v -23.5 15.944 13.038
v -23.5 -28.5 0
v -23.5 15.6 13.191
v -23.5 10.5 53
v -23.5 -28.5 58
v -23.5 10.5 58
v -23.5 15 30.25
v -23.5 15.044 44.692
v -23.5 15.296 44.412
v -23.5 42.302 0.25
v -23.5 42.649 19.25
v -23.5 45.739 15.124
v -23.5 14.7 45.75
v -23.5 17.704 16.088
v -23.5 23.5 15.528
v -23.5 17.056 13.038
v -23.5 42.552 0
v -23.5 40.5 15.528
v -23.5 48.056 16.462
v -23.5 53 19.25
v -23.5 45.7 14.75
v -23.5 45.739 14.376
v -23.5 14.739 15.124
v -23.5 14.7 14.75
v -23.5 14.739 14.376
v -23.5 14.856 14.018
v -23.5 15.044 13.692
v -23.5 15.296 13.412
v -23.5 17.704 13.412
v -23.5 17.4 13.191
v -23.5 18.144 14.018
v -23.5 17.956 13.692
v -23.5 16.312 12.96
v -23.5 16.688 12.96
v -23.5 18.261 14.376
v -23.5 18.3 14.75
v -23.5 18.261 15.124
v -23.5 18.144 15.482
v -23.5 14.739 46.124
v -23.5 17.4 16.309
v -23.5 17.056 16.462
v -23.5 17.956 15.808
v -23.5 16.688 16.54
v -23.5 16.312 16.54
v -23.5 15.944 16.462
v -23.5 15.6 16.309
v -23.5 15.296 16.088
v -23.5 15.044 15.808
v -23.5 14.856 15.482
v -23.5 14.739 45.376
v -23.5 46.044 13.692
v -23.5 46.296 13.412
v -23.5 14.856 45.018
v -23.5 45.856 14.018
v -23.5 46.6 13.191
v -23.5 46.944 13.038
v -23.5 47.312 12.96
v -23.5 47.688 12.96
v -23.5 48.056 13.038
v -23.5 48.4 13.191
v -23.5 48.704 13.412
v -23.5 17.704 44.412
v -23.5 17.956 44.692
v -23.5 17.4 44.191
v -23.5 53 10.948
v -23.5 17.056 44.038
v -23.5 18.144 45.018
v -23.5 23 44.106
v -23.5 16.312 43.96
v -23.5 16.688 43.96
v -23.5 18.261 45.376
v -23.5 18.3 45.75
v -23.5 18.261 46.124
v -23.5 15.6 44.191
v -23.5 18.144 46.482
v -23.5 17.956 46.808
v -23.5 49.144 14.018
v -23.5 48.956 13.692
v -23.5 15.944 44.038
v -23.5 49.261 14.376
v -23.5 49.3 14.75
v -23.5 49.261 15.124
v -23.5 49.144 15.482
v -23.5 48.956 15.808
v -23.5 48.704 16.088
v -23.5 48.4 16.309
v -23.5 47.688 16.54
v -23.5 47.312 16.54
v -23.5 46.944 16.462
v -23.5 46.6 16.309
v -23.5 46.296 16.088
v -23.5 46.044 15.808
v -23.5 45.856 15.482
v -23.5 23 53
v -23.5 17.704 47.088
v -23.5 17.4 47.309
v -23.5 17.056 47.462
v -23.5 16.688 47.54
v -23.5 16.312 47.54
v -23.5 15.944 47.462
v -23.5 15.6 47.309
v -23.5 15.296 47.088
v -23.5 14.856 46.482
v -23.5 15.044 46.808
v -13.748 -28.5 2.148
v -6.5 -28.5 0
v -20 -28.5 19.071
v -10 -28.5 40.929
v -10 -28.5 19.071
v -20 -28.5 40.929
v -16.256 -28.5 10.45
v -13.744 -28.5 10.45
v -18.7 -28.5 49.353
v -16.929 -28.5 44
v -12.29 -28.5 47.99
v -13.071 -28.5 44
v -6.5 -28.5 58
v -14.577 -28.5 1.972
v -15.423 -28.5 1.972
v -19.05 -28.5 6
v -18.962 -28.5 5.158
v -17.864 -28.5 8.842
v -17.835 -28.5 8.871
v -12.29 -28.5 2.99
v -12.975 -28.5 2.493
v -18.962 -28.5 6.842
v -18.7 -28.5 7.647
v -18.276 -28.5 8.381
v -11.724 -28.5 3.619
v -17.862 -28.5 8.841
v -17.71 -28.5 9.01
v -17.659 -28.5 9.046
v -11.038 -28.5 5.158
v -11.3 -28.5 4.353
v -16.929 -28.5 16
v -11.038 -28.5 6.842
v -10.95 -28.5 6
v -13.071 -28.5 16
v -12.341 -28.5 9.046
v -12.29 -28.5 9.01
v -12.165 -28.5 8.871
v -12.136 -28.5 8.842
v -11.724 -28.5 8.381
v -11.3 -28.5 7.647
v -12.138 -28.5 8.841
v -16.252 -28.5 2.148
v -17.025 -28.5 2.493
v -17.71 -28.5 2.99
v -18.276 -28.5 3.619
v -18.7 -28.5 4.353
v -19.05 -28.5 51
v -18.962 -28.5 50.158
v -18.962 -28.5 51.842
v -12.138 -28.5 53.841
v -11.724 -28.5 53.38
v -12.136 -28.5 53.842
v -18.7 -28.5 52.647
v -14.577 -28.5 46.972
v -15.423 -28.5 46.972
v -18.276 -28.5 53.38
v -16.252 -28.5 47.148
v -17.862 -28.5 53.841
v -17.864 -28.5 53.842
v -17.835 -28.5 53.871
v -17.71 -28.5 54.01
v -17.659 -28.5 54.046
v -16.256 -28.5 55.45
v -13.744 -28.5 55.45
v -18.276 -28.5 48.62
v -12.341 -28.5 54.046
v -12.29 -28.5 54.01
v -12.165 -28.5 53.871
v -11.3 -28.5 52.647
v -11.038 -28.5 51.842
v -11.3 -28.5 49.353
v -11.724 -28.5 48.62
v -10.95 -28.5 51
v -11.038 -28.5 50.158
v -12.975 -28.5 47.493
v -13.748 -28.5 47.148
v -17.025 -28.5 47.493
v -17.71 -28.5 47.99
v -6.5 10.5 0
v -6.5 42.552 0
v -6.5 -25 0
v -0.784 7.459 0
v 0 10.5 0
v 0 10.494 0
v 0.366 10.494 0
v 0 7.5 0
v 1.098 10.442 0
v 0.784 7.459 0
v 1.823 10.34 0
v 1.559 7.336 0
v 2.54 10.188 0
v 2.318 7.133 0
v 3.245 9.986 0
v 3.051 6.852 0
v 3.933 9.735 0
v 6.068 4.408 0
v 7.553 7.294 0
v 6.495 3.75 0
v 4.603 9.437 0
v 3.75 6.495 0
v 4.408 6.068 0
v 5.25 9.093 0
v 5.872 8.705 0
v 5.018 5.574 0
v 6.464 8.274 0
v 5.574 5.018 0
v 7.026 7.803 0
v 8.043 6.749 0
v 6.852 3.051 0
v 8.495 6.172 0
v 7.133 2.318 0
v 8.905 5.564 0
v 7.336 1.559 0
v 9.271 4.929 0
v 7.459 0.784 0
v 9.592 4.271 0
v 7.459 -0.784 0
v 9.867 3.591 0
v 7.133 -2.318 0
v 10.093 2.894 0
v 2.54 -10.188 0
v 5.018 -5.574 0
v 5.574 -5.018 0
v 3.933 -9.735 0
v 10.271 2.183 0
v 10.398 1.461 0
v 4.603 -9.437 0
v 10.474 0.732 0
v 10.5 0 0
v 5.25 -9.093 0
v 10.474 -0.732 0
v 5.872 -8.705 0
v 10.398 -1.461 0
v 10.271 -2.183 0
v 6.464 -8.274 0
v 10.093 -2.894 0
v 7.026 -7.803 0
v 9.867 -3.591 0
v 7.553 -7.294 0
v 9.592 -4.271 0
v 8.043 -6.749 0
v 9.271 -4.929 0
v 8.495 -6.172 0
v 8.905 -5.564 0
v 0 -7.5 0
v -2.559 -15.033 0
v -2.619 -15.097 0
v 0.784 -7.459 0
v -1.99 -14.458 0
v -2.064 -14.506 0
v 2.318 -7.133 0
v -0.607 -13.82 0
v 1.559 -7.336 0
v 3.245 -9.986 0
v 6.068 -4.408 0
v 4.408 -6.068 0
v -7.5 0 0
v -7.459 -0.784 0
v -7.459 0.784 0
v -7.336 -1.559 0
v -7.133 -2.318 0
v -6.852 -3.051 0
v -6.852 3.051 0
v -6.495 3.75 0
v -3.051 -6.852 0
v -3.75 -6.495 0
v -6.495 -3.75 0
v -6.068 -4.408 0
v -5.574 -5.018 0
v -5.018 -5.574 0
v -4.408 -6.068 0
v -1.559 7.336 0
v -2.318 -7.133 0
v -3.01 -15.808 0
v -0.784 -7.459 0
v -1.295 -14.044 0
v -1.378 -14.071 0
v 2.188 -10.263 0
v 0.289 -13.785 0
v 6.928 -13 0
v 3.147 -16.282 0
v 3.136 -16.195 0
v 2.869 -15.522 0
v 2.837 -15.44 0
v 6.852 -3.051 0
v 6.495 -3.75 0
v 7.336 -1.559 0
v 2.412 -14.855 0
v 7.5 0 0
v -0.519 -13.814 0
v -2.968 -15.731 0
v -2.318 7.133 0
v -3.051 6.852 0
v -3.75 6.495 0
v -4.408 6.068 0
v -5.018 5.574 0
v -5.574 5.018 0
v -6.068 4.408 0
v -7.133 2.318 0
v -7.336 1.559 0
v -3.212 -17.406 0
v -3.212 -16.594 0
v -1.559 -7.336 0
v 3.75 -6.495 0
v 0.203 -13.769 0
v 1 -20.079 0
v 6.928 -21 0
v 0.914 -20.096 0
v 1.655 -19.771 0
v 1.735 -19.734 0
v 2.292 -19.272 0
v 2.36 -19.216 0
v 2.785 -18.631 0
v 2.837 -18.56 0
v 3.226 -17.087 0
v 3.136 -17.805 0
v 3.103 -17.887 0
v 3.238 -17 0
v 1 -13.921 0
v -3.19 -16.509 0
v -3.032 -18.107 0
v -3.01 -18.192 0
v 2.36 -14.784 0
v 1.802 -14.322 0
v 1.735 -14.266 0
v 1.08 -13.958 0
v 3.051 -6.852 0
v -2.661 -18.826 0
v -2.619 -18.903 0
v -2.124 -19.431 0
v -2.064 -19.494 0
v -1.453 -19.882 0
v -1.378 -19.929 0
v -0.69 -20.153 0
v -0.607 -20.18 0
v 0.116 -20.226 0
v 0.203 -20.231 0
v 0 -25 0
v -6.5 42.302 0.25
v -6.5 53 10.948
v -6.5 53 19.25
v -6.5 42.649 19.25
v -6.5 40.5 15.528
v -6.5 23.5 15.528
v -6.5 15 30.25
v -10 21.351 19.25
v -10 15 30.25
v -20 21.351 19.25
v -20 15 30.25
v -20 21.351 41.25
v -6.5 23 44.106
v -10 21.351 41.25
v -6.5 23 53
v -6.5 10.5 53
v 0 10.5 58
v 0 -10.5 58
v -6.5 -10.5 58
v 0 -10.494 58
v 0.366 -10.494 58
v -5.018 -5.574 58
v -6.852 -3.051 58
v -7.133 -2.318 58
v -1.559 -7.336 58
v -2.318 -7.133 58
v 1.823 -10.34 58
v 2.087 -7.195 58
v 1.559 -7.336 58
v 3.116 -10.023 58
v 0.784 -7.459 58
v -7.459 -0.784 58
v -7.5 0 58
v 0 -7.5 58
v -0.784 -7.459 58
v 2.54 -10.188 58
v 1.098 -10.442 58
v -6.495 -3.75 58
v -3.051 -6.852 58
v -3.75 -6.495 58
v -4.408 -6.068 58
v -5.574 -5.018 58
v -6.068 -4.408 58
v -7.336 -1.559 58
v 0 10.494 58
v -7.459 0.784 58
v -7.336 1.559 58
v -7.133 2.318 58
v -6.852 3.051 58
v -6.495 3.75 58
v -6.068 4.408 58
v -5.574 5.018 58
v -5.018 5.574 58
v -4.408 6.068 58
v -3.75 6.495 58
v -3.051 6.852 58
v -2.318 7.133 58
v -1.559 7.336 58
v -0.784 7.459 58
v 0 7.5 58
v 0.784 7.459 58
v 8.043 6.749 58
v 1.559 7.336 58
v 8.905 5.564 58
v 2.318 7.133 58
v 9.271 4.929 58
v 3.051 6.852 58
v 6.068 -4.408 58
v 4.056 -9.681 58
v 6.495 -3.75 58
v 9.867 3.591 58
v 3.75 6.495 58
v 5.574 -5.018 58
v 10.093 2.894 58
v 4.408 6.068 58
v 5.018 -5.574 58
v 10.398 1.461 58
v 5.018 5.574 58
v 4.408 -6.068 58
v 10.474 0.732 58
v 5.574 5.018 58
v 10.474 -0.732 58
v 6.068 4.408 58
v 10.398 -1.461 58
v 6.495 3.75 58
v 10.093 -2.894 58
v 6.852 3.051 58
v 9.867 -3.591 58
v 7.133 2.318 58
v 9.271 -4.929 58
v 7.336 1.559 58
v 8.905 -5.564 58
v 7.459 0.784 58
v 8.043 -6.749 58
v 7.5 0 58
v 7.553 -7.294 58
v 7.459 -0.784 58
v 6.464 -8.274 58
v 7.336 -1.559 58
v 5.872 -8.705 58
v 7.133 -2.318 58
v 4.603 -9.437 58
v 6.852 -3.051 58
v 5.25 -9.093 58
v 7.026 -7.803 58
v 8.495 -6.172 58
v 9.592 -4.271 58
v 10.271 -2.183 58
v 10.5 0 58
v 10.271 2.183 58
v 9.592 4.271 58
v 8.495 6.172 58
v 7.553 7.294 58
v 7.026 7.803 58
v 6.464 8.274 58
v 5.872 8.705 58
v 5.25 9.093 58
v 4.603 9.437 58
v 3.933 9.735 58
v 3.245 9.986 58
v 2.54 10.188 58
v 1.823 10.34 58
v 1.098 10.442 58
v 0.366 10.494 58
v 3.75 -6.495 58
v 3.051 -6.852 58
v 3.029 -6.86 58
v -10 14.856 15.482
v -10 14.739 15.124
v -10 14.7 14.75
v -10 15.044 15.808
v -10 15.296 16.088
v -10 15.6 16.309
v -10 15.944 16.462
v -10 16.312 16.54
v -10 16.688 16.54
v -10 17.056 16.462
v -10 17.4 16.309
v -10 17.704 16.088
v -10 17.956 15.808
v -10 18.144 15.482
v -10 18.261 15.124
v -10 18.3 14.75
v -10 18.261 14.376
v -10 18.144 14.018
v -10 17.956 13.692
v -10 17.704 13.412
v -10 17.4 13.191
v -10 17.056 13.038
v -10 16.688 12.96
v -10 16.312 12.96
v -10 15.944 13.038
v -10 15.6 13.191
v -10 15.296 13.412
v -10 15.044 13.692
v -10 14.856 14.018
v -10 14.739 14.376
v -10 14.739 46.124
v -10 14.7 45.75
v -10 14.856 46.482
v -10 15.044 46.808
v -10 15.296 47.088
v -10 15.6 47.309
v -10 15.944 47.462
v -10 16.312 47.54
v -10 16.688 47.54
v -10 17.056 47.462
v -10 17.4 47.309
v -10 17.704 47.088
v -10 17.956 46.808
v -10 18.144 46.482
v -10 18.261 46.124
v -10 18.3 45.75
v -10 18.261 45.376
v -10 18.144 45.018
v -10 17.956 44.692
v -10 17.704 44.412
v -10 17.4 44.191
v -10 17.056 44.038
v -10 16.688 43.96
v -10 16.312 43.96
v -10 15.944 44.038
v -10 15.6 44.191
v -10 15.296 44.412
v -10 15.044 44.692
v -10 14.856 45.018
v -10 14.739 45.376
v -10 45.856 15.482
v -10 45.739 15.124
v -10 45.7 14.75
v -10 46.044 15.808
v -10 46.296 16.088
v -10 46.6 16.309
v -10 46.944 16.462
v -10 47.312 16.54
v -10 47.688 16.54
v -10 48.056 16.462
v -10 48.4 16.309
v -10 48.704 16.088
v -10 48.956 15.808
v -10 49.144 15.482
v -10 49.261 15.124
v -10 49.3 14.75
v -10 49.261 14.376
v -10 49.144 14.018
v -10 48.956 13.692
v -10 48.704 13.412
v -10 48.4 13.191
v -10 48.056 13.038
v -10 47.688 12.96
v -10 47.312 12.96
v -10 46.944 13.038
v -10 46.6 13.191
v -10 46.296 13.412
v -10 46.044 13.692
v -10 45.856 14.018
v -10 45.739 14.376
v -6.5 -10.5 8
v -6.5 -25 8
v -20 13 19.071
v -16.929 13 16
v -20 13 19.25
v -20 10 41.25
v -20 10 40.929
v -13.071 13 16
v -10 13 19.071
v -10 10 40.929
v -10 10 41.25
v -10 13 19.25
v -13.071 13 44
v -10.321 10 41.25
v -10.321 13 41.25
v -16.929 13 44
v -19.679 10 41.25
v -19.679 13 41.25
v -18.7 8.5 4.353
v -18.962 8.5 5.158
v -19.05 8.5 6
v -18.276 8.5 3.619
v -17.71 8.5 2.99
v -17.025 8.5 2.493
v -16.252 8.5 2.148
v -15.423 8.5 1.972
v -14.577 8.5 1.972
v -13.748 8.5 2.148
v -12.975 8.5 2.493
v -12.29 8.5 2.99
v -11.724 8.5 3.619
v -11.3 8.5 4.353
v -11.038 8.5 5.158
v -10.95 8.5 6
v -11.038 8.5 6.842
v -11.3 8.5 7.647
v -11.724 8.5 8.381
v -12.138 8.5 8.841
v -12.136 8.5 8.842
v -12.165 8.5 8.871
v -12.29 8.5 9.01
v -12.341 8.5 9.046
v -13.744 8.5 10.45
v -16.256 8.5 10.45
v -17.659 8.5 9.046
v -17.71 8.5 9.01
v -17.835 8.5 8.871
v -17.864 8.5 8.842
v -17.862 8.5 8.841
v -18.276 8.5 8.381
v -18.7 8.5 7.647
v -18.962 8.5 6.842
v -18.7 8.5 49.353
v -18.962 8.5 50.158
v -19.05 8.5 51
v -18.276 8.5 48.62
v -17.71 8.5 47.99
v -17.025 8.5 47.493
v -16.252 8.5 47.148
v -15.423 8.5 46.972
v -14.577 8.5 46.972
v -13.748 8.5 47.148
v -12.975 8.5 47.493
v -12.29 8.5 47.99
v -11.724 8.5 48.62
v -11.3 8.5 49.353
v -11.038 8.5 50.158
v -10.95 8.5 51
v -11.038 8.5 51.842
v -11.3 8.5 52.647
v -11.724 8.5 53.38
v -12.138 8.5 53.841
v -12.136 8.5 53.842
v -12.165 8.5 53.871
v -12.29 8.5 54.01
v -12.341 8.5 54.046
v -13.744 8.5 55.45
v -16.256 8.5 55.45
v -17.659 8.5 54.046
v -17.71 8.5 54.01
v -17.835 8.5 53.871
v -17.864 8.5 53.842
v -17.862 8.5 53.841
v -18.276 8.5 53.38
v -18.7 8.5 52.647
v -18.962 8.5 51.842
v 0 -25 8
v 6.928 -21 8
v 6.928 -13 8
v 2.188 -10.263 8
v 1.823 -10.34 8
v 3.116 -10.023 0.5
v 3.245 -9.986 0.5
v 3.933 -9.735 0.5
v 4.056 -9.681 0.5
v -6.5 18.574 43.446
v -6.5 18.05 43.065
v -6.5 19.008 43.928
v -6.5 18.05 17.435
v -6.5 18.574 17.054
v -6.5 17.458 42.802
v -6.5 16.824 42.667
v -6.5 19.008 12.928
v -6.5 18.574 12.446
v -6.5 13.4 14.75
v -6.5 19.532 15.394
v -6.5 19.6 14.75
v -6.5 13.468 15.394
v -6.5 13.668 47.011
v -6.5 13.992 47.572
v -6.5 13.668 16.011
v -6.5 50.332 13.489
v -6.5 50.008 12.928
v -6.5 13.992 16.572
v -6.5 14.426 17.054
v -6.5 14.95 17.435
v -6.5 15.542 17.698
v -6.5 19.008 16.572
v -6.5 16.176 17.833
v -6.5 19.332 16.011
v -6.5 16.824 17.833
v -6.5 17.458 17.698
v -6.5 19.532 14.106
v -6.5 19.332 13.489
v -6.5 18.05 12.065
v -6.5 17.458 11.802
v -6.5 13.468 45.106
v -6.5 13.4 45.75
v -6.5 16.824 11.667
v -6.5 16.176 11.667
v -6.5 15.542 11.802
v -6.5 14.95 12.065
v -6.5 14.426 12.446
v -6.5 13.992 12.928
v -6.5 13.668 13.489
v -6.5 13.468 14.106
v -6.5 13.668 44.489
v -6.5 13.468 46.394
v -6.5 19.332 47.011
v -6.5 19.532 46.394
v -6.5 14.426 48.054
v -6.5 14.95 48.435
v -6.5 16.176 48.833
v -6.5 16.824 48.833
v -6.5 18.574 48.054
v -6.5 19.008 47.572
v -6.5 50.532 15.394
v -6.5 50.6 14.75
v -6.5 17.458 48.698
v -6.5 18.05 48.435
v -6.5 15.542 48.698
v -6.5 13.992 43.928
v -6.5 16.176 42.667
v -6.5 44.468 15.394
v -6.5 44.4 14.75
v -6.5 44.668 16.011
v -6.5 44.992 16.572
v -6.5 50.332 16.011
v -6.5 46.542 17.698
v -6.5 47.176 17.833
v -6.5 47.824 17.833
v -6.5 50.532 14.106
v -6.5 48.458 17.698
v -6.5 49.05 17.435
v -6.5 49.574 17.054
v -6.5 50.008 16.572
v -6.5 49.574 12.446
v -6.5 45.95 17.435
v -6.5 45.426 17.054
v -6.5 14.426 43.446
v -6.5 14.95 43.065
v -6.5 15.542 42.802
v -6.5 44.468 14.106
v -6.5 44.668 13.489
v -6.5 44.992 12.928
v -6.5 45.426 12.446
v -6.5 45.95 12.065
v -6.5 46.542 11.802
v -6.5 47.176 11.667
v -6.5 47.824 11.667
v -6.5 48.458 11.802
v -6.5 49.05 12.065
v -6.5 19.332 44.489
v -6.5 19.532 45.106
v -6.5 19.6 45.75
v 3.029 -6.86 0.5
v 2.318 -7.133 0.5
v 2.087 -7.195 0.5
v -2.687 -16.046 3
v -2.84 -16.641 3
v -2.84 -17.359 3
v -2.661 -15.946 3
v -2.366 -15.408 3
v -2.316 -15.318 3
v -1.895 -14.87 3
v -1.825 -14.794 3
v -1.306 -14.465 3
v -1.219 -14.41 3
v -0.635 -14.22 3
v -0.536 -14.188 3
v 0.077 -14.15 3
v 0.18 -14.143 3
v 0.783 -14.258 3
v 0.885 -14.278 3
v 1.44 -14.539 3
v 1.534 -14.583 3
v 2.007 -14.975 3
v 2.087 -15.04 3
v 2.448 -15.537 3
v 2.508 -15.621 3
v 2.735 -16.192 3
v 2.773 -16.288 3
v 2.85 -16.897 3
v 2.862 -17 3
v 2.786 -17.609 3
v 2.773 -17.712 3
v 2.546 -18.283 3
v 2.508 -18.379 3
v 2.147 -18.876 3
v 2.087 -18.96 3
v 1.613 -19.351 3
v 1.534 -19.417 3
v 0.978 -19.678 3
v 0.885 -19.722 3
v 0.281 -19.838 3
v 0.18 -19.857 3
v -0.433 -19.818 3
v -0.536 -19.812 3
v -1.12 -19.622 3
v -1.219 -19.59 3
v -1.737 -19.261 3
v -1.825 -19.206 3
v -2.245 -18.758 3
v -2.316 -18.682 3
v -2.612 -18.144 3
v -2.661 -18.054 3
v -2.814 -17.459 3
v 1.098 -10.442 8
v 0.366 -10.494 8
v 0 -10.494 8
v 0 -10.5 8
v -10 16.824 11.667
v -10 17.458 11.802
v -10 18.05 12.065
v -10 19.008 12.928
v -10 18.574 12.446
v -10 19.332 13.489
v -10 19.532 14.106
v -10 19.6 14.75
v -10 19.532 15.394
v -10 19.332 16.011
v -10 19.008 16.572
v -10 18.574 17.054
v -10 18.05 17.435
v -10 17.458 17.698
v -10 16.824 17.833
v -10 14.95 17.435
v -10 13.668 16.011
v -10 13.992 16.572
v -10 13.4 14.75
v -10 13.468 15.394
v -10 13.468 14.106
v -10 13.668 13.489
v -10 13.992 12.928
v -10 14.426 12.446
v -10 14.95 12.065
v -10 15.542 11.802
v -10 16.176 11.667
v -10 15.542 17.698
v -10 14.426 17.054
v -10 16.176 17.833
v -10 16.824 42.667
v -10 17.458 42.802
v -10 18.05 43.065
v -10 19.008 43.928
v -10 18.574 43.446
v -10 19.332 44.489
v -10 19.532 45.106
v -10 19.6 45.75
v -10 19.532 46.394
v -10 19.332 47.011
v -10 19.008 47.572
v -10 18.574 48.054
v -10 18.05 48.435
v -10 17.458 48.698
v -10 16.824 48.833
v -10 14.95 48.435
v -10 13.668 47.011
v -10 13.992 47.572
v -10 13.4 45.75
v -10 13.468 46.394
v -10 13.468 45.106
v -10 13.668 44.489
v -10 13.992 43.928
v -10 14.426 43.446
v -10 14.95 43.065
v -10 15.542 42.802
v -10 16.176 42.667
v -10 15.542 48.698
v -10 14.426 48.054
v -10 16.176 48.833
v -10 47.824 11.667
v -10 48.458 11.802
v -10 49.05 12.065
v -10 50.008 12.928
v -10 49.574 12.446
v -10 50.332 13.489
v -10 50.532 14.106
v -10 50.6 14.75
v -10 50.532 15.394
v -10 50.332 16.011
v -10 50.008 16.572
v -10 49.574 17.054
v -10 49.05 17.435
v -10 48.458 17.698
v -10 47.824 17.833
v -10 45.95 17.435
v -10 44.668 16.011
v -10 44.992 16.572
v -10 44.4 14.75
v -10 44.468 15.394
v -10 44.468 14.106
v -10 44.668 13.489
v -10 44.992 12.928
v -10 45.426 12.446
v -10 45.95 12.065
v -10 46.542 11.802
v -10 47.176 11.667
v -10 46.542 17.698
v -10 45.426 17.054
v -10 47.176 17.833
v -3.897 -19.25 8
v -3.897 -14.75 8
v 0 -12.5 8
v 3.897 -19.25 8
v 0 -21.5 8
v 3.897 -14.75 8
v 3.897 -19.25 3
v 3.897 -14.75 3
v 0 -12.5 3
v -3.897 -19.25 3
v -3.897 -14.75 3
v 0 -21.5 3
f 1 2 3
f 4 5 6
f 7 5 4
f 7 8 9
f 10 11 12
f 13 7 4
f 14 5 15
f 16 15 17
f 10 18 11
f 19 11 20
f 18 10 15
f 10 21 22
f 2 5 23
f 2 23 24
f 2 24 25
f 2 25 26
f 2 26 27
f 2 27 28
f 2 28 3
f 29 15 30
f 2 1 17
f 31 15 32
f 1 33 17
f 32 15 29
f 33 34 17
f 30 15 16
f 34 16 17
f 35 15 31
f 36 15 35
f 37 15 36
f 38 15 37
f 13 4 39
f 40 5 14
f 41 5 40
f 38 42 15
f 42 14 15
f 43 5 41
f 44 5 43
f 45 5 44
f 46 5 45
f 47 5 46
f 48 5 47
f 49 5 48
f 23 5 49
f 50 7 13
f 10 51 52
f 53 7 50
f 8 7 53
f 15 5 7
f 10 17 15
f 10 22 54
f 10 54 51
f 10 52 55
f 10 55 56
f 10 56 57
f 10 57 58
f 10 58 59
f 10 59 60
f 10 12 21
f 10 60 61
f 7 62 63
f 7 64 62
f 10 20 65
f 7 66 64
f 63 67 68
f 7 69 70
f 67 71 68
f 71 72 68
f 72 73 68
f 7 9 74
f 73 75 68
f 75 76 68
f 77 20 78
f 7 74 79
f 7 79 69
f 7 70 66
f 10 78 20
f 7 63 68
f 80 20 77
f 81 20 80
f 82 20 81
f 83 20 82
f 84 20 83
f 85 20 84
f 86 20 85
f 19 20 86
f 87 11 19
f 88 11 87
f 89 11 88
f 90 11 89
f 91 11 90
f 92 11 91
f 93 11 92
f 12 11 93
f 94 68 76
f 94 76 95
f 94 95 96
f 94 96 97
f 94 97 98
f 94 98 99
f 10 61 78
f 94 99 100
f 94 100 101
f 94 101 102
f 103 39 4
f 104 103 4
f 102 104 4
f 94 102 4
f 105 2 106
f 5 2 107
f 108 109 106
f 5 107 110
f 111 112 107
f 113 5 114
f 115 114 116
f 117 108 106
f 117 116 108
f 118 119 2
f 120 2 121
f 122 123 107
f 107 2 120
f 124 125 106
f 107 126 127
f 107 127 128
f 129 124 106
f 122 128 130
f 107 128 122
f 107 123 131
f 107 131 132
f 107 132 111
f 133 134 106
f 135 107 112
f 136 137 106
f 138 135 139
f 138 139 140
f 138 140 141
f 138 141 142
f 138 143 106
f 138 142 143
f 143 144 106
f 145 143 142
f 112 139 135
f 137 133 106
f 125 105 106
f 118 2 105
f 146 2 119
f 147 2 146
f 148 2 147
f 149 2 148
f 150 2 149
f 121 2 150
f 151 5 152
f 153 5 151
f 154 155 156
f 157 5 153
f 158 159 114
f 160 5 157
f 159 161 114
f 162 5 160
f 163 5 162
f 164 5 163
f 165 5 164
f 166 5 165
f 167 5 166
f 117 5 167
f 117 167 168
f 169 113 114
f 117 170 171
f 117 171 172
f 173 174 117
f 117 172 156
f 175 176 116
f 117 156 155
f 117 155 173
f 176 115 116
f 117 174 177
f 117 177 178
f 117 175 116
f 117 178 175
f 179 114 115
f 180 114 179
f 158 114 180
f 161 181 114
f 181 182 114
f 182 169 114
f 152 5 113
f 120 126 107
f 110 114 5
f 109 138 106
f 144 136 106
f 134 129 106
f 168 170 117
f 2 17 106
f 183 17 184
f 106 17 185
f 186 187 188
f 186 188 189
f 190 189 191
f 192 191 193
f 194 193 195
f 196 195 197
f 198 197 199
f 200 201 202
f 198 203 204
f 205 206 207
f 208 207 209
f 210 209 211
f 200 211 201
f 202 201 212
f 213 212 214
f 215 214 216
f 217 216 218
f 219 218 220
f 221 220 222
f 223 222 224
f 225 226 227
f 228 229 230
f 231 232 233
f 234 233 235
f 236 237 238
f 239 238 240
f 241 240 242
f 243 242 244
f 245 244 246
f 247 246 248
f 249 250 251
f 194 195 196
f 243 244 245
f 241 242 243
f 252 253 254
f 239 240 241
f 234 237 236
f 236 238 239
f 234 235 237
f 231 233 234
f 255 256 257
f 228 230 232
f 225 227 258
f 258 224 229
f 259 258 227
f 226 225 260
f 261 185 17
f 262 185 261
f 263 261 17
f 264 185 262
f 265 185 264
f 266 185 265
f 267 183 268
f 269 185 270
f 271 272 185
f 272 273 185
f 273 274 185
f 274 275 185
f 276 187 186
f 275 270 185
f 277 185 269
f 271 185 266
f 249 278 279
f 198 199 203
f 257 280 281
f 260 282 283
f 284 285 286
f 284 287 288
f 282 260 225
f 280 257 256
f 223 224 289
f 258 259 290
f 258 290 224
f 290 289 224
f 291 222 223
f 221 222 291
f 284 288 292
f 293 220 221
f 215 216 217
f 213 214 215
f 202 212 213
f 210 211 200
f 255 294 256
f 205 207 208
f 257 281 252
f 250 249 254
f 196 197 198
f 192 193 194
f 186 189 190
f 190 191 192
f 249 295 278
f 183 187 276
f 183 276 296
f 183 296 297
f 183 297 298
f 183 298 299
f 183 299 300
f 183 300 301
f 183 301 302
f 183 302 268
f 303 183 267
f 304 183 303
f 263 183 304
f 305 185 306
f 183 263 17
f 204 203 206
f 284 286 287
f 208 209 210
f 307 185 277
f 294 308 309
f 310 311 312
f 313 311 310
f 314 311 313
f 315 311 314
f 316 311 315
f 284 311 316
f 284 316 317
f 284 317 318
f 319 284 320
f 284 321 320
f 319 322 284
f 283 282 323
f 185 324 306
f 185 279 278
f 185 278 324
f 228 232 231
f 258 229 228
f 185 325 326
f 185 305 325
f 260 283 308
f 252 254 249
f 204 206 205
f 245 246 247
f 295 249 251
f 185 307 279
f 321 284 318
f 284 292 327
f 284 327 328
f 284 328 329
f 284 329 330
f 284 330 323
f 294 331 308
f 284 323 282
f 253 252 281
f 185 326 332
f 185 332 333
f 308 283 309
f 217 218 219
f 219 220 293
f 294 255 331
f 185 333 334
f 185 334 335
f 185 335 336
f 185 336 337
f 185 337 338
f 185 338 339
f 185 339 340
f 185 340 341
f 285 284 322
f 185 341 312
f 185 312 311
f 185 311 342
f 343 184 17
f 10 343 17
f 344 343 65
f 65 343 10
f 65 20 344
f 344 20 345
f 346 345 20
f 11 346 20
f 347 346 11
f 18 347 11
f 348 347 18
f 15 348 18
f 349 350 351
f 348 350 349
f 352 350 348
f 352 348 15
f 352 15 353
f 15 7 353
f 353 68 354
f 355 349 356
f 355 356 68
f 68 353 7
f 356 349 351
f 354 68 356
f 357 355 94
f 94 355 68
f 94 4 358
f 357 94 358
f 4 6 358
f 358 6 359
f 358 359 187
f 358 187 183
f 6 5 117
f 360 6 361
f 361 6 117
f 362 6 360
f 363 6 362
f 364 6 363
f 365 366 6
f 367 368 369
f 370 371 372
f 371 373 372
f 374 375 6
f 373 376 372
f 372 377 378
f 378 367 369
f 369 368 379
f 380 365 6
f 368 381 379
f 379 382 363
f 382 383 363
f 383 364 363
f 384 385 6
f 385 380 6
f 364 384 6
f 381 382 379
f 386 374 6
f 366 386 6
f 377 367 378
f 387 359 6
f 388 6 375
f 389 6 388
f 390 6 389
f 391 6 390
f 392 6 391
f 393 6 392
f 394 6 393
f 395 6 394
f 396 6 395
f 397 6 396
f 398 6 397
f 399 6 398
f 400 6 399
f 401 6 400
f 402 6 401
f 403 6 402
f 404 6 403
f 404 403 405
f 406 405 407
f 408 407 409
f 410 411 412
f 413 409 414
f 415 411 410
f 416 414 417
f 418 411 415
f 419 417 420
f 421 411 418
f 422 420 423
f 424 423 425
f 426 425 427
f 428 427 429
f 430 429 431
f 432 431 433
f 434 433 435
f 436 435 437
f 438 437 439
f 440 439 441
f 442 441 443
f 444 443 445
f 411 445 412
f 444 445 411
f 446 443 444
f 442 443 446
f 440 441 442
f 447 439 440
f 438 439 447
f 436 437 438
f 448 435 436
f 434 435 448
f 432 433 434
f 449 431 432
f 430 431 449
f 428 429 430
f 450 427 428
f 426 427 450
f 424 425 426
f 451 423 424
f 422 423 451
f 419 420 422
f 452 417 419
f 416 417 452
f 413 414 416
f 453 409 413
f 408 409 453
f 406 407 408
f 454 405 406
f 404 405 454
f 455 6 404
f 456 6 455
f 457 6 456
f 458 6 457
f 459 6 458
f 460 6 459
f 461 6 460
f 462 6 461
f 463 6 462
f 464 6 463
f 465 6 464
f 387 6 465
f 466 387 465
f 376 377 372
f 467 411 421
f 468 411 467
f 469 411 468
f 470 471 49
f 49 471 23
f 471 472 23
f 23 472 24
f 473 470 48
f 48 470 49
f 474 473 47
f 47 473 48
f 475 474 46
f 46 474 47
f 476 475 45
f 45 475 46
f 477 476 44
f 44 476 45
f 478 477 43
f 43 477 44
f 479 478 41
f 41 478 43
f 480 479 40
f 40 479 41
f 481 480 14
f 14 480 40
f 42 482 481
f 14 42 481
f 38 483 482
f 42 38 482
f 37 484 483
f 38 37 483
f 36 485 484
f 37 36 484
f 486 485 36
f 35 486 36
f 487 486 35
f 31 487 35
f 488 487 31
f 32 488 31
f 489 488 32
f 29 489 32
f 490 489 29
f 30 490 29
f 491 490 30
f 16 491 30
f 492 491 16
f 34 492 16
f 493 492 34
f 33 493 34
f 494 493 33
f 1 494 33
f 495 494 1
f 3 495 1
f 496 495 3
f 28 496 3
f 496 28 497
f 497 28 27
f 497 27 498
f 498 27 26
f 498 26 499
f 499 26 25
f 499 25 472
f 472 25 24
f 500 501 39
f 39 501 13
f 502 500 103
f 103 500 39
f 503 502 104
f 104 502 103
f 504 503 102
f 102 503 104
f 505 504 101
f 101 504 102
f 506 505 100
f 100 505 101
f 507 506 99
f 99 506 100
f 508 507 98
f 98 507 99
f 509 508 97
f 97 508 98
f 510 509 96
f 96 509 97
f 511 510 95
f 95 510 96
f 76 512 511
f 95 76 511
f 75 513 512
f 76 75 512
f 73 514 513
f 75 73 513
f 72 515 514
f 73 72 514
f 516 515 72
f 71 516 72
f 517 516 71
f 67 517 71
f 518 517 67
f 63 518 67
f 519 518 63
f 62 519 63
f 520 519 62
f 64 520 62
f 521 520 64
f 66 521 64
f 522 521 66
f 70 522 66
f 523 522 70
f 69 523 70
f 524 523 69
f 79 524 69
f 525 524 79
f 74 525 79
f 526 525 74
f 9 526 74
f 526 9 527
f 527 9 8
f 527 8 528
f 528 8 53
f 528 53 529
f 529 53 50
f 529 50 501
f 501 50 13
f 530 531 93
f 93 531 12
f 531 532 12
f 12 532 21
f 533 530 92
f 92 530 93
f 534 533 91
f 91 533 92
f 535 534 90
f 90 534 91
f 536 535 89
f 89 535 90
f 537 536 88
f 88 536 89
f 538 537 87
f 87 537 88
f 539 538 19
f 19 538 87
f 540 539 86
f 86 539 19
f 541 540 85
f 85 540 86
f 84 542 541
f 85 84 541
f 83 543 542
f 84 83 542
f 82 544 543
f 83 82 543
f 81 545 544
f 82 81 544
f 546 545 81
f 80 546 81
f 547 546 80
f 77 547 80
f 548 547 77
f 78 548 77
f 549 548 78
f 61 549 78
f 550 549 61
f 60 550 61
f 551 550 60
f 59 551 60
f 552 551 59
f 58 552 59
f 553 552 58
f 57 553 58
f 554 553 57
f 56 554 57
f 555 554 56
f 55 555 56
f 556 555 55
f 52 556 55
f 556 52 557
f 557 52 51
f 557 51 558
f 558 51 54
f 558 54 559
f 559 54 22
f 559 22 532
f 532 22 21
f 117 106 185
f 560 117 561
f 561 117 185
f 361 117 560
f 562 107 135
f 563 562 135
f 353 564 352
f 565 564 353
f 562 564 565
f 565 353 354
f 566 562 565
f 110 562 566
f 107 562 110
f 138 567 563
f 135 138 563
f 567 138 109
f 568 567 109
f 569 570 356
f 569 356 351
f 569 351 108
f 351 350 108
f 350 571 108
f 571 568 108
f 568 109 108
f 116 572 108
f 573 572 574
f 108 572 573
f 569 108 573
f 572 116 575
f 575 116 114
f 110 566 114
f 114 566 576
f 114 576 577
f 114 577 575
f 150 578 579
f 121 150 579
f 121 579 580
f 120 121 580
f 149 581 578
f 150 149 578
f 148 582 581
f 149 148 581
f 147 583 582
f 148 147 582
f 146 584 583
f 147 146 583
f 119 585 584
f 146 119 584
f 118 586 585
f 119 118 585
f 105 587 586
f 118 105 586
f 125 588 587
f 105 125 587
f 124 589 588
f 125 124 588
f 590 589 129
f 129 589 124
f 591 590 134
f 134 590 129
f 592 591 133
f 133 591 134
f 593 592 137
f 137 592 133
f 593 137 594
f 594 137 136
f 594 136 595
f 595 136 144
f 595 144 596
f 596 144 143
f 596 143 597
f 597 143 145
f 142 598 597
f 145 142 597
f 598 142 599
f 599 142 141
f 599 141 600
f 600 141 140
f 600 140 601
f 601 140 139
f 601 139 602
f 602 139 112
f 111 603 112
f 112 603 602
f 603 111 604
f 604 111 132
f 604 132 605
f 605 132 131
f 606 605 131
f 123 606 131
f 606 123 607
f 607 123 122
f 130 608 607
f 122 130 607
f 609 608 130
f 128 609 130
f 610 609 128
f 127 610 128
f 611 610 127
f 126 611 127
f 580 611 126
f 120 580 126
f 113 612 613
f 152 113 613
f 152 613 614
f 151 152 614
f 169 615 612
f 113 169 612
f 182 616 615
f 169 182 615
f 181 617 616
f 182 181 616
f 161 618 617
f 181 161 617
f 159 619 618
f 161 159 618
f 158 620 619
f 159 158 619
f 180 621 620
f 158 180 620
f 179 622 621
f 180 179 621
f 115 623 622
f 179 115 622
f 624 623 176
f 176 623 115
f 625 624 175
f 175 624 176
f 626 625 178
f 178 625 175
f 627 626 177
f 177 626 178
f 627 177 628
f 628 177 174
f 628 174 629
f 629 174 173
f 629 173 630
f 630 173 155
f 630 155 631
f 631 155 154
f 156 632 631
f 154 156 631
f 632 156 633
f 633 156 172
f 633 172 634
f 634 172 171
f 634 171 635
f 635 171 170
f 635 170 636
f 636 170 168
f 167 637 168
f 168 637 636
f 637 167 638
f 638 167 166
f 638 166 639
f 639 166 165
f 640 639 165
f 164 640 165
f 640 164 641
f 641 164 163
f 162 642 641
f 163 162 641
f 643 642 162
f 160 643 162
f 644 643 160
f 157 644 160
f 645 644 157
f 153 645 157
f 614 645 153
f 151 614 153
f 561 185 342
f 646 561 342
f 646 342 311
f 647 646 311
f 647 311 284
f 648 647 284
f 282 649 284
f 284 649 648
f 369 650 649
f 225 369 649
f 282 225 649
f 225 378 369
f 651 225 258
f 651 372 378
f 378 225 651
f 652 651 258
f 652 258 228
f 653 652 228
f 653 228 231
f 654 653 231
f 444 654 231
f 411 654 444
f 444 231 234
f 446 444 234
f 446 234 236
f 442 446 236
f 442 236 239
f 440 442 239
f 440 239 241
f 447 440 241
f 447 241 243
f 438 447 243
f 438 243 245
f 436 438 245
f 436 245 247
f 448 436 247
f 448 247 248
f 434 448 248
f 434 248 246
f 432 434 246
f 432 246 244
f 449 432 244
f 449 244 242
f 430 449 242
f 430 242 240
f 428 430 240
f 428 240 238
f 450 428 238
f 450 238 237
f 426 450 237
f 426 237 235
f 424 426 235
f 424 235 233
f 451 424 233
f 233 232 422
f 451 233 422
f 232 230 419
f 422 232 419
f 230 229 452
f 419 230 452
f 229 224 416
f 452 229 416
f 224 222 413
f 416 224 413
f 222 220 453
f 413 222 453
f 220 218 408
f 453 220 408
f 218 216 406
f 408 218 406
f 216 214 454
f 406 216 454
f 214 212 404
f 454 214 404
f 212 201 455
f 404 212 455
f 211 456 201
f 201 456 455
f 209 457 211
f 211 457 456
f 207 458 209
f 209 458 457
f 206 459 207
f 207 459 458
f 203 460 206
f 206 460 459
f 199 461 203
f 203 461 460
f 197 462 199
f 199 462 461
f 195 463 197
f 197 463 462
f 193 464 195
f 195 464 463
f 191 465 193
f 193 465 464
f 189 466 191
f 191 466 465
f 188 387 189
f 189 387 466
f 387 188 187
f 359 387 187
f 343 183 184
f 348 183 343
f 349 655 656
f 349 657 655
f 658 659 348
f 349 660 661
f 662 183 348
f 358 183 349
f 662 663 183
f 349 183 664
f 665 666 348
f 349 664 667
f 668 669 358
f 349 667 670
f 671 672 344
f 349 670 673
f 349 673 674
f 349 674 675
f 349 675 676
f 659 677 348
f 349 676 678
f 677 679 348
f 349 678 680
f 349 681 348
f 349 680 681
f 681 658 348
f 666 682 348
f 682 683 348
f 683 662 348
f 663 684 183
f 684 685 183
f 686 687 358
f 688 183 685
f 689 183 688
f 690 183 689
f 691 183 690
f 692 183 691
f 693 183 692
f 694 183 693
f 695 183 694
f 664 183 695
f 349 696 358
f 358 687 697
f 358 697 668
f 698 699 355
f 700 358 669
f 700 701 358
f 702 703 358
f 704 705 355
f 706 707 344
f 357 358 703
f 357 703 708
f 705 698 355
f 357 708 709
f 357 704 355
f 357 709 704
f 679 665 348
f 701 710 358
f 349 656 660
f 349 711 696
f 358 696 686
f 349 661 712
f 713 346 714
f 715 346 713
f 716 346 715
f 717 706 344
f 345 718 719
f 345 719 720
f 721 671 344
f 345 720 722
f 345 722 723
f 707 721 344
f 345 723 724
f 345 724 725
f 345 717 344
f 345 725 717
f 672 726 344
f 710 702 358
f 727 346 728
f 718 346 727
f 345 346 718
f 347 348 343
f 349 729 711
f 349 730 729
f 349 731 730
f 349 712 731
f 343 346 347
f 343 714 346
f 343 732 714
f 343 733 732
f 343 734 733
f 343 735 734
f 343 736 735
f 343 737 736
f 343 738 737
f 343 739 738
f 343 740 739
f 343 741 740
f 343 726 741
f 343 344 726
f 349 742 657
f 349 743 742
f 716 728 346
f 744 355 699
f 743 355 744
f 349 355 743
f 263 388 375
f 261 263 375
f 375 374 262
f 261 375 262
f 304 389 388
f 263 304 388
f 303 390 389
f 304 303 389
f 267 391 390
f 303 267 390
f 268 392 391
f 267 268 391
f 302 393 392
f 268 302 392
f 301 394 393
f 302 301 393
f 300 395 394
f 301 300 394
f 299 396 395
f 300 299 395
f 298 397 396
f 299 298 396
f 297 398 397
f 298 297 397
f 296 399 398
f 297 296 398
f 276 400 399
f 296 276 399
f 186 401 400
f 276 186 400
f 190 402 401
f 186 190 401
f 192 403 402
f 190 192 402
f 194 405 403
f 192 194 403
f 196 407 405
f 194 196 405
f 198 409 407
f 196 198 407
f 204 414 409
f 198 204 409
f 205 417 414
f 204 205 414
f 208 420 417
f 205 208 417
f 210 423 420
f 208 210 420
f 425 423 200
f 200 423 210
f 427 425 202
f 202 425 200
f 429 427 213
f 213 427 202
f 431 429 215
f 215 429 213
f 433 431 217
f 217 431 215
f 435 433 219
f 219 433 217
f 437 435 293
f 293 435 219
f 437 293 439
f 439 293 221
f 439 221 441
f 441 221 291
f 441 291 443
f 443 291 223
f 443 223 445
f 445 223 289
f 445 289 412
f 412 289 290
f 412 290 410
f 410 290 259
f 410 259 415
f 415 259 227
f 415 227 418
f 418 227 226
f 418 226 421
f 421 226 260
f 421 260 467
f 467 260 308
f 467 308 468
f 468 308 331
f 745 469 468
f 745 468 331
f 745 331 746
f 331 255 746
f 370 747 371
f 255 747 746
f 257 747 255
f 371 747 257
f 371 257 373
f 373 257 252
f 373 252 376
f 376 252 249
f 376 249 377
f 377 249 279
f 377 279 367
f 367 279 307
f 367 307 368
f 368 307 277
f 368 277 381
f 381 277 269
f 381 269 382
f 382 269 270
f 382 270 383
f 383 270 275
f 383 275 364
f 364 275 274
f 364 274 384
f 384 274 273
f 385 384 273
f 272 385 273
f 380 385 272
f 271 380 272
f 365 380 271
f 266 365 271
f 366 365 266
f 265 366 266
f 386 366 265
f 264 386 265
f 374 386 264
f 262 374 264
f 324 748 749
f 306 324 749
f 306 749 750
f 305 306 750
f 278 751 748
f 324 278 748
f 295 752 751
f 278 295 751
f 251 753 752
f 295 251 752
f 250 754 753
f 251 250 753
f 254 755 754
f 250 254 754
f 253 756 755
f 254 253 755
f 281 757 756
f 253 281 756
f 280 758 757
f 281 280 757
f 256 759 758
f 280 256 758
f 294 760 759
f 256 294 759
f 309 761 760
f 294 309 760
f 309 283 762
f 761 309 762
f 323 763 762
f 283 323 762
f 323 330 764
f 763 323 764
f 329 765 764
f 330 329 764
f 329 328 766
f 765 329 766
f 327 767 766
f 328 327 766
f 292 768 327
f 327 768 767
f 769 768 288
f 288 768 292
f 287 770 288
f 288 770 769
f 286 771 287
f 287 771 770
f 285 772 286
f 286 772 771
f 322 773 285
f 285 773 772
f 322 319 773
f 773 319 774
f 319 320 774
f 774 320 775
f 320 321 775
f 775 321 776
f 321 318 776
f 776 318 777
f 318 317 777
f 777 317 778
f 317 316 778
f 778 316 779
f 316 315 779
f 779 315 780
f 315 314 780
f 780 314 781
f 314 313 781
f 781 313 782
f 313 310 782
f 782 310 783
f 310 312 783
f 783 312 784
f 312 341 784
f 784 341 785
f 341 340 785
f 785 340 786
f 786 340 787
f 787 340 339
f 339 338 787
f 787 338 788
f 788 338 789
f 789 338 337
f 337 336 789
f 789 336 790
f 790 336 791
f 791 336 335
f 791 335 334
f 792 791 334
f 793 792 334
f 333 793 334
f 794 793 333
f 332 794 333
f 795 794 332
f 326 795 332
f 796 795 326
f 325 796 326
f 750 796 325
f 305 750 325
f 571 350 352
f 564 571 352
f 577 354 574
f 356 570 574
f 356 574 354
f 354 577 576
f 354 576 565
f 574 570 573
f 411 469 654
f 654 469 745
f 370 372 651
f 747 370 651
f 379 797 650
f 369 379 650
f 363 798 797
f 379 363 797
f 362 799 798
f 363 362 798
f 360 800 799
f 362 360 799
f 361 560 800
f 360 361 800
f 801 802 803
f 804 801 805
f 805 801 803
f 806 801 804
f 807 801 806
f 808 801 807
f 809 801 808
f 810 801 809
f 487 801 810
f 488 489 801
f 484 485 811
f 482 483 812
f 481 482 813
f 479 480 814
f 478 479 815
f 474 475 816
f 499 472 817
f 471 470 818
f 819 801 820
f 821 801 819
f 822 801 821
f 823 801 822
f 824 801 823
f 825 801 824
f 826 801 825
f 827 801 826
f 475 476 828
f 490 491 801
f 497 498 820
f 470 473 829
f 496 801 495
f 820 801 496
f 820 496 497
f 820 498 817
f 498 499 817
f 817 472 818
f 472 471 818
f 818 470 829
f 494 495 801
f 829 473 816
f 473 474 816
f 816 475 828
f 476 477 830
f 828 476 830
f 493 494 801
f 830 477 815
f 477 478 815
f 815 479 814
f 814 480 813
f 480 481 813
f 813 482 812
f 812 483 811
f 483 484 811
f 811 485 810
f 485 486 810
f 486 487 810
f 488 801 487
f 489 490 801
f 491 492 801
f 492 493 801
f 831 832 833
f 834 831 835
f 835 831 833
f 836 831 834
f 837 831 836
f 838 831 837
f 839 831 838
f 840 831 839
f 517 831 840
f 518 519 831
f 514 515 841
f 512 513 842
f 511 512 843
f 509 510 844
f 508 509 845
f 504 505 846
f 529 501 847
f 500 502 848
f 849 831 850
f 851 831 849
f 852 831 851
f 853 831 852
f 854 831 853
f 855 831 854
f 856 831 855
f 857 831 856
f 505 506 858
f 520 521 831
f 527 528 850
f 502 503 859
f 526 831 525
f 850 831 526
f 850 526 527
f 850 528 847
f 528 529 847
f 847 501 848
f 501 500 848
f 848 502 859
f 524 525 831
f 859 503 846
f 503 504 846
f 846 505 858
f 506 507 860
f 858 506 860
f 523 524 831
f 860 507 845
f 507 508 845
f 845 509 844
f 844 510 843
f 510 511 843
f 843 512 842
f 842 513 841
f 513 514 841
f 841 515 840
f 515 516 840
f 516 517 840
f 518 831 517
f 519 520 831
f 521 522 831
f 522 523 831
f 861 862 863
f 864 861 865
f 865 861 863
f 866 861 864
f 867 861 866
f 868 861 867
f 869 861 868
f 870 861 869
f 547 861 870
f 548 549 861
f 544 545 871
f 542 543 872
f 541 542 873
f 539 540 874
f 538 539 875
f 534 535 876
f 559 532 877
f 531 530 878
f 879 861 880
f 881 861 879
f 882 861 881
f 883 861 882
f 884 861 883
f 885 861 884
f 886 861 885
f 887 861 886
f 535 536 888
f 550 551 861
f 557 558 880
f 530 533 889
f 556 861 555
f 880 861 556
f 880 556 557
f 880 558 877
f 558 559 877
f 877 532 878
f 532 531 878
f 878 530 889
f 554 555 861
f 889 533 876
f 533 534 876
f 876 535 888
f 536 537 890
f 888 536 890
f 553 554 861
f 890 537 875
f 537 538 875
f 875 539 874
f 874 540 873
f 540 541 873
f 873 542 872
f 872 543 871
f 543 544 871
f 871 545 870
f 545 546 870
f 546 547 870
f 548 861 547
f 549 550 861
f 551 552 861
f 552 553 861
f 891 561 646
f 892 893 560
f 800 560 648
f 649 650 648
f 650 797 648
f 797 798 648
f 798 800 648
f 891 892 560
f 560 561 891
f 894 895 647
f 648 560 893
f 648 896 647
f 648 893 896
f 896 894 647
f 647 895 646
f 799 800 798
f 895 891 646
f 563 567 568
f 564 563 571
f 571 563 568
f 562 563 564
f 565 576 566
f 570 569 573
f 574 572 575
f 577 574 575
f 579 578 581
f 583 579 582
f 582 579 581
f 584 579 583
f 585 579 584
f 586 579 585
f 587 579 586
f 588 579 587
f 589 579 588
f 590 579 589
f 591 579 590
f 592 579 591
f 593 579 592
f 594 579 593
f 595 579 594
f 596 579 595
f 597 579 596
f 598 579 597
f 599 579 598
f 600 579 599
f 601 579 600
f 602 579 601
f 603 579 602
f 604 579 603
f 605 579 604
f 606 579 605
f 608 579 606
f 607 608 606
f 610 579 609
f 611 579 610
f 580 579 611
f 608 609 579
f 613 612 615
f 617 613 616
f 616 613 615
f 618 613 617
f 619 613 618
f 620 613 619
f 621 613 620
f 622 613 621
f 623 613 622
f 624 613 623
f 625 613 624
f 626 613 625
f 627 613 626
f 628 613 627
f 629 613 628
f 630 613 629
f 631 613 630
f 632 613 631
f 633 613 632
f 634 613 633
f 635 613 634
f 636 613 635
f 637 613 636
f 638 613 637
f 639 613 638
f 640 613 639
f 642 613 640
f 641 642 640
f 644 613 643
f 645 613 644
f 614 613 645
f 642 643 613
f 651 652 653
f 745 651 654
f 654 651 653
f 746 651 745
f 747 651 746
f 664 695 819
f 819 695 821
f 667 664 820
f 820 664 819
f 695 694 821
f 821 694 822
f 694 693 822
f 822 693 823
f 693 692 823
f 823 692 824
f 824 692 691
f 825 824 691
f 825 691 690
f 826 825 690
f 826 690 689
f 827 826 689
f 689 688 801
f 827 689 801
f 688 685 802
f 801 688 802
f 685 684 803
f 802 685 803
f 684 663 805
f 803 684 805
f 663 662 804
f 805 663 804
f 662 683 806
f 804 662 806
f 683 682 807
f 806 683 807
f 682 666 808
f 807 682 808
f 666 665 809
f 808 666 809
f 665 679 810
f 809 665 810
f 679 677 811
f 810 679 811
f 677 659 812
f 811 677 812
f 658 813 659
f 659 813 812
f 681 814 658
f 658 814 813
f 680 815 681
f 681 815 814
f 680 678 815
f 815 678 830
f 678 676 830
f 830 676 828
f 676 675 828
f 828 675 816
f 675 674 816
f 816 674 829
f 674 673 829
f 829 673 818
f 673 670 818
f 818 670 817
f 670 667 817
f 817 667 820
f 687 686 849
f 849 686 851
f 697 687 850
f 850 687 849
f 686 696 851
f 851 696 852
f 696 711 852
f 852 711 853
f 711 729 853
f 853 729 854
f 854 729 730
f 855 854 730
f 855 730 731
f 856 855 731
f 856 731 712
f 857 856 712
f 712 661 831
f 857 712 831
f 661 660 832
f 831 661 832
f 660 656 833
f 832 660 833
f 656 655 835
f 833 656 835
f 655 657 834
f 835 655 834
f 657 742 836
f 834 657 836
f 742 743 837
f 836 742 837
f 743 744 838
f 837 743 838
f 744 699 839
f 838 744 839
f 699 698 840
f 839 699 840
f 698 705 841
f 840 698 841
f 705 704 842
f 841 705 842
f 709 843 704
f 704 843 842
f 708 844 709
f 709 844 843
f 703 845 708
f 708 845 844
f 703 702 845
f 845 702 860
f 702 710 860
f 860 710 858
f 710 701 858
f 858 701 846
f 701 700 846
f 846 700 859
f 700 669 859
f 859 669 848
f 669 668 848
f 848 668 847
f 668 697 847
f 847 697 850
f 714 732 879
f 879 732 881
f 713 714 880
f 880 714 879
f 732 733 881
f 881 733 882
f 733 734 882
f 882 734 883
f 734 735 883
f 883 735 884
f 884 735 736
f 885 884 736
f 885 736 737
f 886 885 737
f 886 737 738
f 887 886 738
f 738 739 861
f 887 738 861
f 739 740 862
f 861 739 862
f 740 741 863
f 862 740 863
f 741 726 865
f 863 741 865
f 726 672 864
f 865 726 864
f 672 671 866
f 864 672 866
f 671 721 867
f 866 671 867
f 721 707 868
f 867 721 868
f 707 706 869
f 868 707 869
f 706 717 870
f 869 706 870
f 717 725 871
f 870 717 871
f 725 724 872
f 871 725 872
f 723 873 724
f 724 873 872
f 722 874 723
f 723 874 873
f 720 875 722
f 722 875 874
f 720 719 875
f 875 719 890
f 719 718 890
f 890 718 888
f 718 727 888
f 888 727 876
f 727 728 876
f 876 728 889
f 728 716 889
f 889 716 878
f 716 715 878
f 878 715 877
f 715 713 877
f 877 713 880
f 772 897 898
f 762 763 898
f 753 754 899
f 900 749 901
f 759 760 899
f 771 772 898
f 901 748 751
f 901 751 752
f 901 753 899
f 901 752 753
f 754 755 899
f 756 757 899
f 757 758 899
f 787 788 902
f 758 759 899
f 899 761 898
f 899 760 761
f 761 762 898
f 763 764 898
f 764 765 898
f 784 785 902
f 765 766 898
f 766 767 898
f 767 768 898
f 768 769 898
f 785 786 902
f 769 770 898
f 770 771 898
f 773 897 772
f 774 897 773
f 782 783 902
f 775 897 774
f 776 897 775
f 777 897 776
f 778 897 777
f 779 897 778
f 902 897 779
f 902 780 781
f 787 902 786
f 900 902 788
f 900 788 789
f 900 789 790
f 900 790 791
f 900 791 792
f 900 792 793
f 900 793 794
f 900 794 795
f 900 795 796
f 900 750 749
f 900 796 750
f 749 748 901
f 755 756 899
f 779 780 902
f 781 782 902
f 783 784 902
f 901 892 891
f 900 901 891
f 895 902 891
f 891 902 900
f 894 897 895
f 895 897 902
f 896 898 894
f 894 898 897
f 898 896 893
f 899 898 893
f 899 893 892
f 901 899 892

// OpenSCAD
// file: inc/bearing.scad
// PRUSA iteration3
// Bearing holders
// GNU GPL v3
// Josef Průša <iam@josefprusa.cz> and contributors
// http://www.reprap.org/wiki/Prusa_Mendel
// http://prusamendel.org

bearing_diameter = 15;

module horizontal_bearing_base(bearings=1){
 translate(v=[0,0,6]) cube(size = [24,8+bearings*25,12], center = true);	
}
module horizontal_bearing_holes(bearings=1){
 cutter_lenght = 10+bearings*25;
 one_holder_lenght = 8+25;
 holder_lenght = 8+bearings*25;
 
 // Main bearing cut
 difference(){
  translate(v=[0,0,12+1.5]) rotate(a=[90,0,0]) translate(v=[0,0,-cutter_lenght/2]) cylinder(h = cutter_lenght, r=bearing_diameter/2, $fn=50);
  // Bearing retainers
  translate(v=[0,1-holder_lenght/2,3+1.5]) cube(size = [24,6,8], center = true);
  translate(v=[0,-1+holder_lenght/2,3+1.5]) cube(size = [24,6,8], center = true);
 }
 
 // Ziptie cutouts
 ziptie_cut_ofset = 0;
 for ( i = [0 : bearings-1] ){
  // For easier positioning I move them by half of one 
  // bearing holder then add each bearign lenght and then center again
  translate(v=[0,-holder_lenght/2,0]) translate(v=[0,one_holder_lenght/2+i*25,0]) difference(){
   union(){
    translate(v=[0,2-6,12]) rotate(a=[90,0,0]) translate(v=[0,0,0]) cylinder(h = 4, r=12.5, $fn=50);
    translate(v=[0,2+6,12]) rotate(a=[90,0,0]) translate(v=[0,0,0]) cylinder(h = 4, r=12.5, $fn=50);
   }
   translate(v=[0,10,12]) rotate(a=[90,0,0]) translate(v=[0,0,0]) cylinder(h = 24, r=10, $fn=50);
  }
 }
 
}

module horizontal_bearing_test(){
 difference(){
  horizontal_bearing_base(1);
  horizontal_bearing_holes(1);
 }
 translate(v=[30,0,0]) difference(){
  horizontal_bearing_base(2);
  horizontal_bearing_holes(2);
 }
 translate(v=[60,0,0]) difference(){
  horizontal_bearing_base(3);
  horizontal_bearing_holes(3);
 }
}



thinwall = 3;
bearing_size = bearing_diameter + 2 * thinwall;

module vertical_bearing_base(){
 translate(v=[-2-bearing_size/4,0,29]) cube(size = [4+bearing_size/2,bearing_size,58], center = true);
 cylinder(h = 58, r=bearing_size/2, $fn = 90);
}

module vertical_bearing_holes(){
  translate(v=[0,0,-1]) cylinder(h = 62, r=bearing_diameter/2, $fn = 60);
  rotate(a=[0,0,-70]) translate(v=[8,0,31.5]) cube(size = [5,1,62], center = true);
}

difference(){
vertical_bearing_base();
vertical_bearing_holes();
}
// file: inc/x-end.scad
// PRUSA iteration3
// X end prototype
// GNU GPL v3
// Josef Průša <iam@josefprusa.cz> and contributors
// http://www.reprap.org/wiki/Prusa_Mendel
// http://prusamendel.org

use <bearing.scad>
rod_distance = 45;

module x_end_base(){
// Main block
height = 58;
translate(v=[-15,-9,height/2]) cube(size = [17,39,height], center = true);
// Bearing holder
 vertical_bearing_base();	
//Nut trap
 // Cube
 translate(v=[-2-2,-17,4]) cube(size = [8,16,8], center = true);
 // Hexagon
 translate(v=[0,-17,0]) rotate([0,0,30]) cylinder(h = 8, r=8, $fn = 6);
}

module x_end_holes(){
 vertical_bearing_holes();
// Belt hole
translate(v=[-1,0,0]){
difference(){
	translate(v=[-5.5-10+1.5,-10,30]) cube(size = [10,46,28], center = true);
	// Nice edges
	translate(v=[-5.5-10+1.5,-10,30+23]) rotate([0,45,0]) cube(size = [10,46,28], center = true);
	translate(v=[-5.5-10+1.5,-10,30+23]) rotate([0,-45,0]) cube(size = [10,46,28], center = true);
	translate(v=[-5.5-10+1.5,-10,30-23]) rotate([0,45,0]) cube(size = [10,46,28], center = true);
	translate(v=[-5.5-10+1.5,-10,30-23]) rotate([0,-45,0]) cube(size = [10,46,28], center = true);

}
}

// Bottom pushfit rod
translate(v=[-15,-41.5,6]) rotate(a=[-90,0,0]) pushfit_rod(8.1,50);
// Top pushfit rod
translate(v=[-15,-41.5,rod_distance+6]) rotate(a=[-90,0,0]) pushfit_rod(8.1,50);
// Nut trap
 translate(v=[0,-17,-0.5]) cylinder(h = 4, r1=3.3, r2=2.8, $fn=25);
 translate(v=[0,-17,3]) rotate([0,0,30]) cylinder(h = 10, r=4.5, $fn = 6);
}


// Final prototype
module x_end_plain(){
 difference(){
  x_end_base();
  x_end_holes();
 }
}

x_end_plain();


module pushfit_rod(diameter,length){
 cylinder(h = length, r=diameter/2, $fn=30);
 difference(){
 	translate(v=[0,-diameter/2.85,length/2]) rotate([0,0,45]) cube(size = [diameter/2,diameter/2,length], center = true);
 	translate(v=[0,-diameter/4-diameter/2-0.4,length/2]) rotate([0,0,0]) cube(size = [diameter,diameter/2,length], center = true);
 }
 //translate(v=[0,-diameter/2-2,length/2]) cube(size = [diameter,1,length], center = true);
}
// main file
// PRUSA iteration3
// x end motor
// GNU GPL v3
// Josef Průša <iam@josefprusa.cz> and contributors
// http://www.reprap.org/wiki/Prusa_Mendel
// http://prusamendel.org

use <inc/x-end.scad>

module x_end_motor_base(){
 x_end_base();
 translate(v=[-15,31,26.5]) cube(size = [17,44,53], center = true);
}

module x_end_motor_holes(){
 x_end_holes();
 // Position to place
 translate(v=[-1,32,30.25]){
  // Belt hole
  translate(v=[-14,1,0]) cube(size = [10,46,22], center = true);
  // Motor mounting holes
  translate(v=[20,-15.5,-15.5]) rotate(a=[0,-90,0]) rotate(a=[0,0,90]) cylinder(h = 70, r=1.8, $fn=30);
  translate(v=[1,-15.5,-15.5]) rotate(a=[0,-90,0]) rotate(a=[0,0,90]) cylinder(h = 10, r=3.1, $fn=30);
 

  translate(v=[20,-15.5,15.5]) rotate(a=[0,-90,0]) rotate(a=[0,0,90]) cylinder(h = 70, r=1.8, $fn=30);
  translate(v=[1,-15.5,15.5]) rotate(a=[0,-90,0]) rotate(a=[0,0,90]) cylinder(h = 10, r=3.1, $fn=30);


  translate(v=[20,15.5,-15.5]) rotate(a=[0,-90,0]) rotate(a=[0,0,90]) cylinder(h = 70, r=1.8, $fn=30);
  translate(v=[1,15.5,-15.5]) rotate(a=[0,-90,0]) rotate(a=[0,0,90]) cylinder(h = 10, r=3.1, $fn=30);


  translate(v=[20,15.5,15.5]) rotate(a=[0,-90,0]) rotate(a=[0,0,90]) cylinder(h = 70, r=1.8, $fn=30);
  translate(v=[1,15.5,15.5]) rotate(a=[0,-90,0]) rotate(a=[0,0,90]) cylinder(h = 10, r=3.1, $fn=30);

  // Material saving cutout 
  translate(v=[-10,12,10]) cube(size = [60,42,42], center = true);

  // Material saving cutout
  translate(v=[-10,40,-30]) rotate(a=[45,0,0])  cube(size = [60,42,42], center = true);
  // Motor shaft cutout
  translate(v=[0,0,0]) rotate(a=[0,-90,0]) rotate(a=[0,0,90]) cylinder(h = 70, r=17, $fn=6);
 }
}

// Final part
module x_end_motor(){
 difference(){
  x_end_motor_base();
  x_end_motor_holes();
 }
}

x_end_motor();
